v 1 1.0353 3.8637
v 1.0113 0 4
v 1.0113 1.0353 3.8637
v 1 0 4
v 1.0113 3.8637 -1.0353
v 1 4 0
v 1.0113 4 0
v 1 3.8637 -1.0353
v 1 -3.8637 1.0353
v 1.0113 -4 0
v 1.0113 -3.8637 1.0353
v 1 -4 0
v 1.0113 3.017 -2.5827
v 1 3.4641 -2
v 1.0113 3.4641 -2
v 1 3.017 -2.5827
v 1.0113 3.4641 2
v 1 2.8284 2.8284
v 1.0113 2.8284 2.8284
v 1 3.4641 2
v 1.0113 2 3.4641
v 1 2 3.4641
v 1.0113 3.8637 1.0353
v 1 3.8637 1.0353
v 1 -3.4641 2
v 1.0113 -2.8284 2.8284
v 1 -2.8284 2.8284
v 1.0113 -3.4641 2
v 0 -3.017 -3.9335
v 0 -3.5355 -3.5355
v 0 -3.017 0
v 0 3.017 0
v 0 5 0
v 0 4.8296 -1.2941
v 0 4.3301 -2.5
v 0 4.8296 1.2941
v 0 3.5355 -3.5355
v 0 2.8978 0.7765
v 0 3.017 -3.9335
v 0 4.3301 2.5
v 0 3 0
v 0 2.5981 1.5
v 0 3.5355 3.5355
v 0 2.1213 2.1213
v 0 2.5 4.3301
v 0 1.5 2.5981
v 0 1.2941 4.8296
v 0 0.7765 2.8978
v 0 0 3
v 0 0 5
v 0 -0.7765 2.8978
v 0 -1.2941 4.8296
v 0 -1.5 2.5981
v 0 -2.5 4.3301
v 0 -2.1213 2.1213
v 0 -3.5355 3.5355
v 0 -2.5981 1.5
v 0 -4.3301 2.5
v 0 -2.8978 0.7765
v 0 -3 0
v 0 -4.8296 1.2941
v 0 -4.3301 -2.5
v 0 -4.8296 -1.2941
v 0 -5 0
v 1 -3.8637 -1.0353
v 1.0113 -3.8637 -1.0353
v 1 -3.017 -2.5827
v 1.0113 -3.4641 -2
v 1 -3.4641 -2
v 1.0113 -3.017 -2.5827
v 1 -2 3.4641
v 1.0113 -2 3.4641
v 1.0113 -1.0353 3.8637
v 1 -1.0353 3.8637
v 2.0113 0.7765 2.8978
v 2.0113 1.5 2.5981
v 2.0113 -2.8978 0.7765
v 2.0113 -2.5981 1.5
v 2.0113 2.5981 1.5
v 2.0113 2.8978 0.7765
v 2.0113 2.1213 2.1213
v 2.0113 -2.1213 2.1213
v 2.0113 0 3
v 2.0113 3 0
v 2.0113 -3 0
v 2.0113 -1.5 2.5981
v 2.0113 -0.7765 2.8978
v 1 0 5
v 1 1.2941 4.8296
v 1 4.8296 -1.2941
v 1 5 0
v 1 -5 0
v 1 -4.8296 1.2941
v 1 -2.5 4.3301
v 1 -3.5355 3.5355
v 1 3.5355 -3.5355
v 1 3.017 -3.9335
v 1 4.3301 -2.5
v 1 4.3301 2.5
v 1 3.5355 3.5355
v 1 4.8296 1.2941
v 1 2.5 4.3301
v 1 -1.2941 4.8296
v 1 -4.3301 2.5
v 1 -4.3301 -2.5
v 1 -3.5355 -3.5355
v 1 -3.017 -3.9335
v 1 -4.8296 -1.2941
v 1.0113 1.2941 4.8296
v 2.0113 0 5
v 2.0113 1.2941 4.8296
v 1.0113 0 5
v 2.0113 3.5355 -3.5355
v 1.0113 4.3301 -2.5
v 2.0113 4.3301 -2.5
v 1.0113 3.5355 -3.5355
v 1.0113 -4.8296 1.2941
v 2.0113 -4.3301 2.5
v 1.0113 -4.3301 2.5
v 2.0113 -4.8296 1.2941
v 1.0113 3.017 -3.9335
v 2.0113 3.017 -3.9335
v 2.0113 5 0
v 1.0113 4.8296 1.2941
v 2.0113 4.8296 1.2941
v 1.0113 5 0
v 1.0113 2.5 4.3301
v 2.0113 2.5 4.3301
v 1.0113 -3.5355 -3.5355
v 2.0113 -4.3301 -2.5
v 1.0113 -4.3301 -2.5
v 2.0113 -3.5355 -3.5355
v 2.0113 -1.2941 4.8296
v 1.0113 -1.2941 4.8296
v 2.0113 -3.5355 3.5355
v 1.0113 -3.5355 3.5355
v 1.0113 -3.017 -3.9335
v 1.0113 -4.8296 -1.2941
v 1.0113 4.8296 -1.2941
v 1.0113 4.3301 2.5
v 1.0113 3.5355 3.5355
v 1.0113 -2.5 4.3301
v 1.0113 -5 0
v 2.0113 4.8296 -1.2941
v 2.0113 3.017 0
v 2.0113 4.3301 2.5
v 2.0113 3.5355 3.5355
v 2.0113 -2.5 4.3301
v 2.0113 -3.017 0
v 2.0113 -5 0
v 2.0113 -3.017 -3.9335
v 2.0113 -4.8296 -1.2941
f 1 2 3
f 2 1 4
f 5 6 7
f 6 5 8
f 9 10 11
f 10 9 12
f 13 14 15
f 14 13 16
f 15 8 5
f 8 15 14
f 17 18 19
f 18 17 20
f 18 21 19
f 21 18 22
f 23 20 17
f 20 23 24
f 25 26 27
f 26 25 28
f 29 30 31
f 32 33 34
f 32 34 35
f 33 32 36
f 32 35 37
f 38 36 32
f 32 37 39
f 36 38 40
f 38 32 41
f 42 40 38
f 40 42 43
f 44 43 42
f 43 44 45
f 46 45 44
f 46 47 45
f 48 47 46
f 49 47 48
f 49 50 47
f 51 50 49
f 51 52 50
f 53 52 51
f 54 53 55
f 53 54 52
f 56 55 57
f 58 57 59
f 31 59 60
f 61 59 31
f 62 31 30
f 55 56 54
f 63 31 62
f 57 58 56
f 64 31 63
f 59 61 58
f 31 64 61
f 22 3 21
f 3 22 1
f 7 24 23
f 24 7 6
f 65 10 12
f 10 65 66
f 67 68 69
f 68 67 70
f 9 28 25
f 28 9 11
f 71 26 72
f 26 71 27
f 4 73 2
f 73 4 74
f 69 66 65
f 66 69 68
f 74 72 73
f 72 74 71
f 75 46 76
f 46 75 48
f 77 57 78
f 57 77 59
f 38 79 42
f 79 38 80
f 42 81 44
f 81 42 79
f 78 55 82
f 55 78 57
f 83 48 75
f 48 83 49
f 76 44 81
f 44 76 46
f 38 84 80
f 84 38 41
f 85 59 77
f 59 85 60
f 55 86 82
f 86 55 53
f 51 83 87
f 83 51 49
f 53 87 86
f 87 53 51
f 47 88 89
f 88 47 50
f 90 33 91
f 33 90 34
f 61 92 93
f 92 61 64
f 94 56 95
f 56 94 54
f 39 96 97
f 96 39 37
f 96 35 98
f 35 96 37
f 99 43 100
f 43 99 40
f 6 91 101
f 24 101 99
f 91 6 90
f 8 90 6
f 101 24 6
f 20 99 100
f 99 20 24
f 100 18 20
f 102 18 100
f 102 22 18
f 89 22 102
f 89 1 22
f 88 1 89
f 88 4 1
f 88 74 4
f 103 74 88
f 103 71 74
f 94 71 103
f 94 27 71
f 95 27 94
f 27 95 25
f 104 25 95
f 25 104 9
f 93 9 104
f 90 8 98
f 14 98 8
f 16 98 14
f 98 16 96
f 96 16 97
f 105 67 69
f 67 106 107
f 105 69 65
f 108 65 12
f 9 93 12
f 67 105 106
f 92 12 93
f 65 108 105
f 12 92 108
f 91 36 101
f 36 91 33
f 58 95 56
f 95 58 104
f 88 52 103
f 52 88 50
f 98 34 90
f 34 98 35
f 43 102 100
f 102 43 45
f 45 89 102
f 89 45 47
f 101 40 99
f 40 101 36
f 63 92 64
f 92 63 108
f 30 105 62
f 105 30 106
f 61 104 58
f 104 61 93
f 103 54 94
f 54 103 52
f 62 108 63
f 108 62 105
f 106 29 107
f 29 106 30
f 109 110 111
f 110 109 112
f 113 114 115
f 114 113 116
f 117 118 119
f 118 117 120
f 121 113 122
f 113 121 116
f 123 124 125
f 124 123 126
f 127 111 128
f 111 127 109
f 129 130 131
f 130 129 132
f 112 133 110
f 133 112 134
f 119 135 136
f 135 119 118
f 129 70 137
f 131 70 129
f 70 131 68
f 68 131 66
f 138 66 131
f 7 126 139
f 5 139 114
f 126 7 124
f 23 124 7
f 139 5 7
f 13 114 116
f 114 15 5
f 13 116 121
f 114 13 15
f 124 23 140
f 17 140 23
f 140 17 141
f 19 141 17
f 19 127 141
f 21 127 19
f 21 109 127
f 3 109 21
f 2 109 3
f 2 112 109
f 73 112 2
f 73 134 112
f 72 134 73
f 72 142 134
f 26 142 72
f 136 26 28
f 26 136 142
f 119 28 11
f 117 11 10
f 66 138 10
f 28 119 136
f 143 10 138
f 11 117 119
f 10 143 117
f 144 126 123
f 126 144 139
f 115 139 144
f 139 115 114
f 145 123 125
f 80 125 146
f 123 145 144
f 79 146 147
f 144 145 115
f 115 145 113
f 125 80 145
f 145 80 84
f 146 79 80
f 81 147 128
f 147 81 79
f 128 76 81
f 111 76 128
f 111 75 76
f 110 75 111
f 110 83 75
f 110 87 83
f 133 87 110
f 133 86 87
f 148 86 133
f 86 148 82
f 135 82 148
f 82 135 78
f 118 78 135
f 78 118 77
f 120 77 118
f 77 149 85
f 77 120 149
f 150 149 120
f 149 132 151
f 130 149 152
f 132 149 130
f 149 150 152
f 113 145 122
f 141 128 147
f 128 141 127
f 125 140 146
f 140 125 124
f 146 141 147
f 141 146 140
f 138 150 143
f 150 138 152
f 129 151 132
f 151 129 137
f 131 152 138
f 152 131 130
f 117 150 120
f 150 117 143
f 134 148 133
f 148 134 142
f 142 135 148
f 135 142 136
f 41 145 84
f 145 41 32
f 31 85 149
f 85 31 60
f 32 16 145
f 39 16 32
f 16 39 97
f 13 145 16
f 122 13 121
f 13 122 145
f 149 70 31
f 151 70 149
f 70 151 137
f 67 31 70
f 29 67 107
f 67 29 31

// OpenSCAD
// file: ../build_environments.scad
// build_environments.scad: modules to build level sections
//

module pool(diameter=10.0, wall_height=2.0, step_width=3.0, connections=[])
{
    difference() {
        union() {
        difference() {
            cylinder(h=0.5,r1=diameter+step_width,r2=diameter+step_width,$fn=48);
            translate([0,0,-0.1])
                cylinder(h=0.7,r1=diameter,r2=diameter,$fn=48);
        }
        difference() {
            cylinder(h=wall_height,r1=diameter+step_width+1.0,r2=diameter+step_width+1.0,$fn=48);
            translate([0,0,-0.1])
                cylinder(h=wall_height+0.2,r1=diameter+step_width,r2=diameter+step_width,$fn=48);
        }
        }
    
        for (c = connections)
        {
            rotate([0,90,0]) {
                angle = atan2(c[1],c[0]);
                rotate([-angle,0,0]) {
                    cylinder(h=diameter+5.0,r1=c[2],r2=c[2],$fn=48);
                }
            }
        }
    }
}

module straight(length=10.0, width=2.0, dy1=0.0, dy2=0.0, dz=0.0)
{
    dims = [0, 0, 0, 0, 0, (dz/length)];
    matrix = [
        [ 1, dims[0], dims[1], 0 ],
        [ dims[2], 1, dims[4], 0 ],
        [ dims[5], dims[3], 1, 0 ],
        [ 0, 0, 0, 1 ]
    ];
    multmatrix(matrix)
    difference() {
        translate([dy1,0,0])
        union() {
            rotate([0,90,0]) {
                difference() {
                    cylinder(h=(length-dy1-dy2),r1=width+1.0,r2=width+1.0,$fn=24);
                    translate([0,0,-0.1])
                        cylinder(h=(length-dy1-dy2+0.2),r1=width,r2=width,$fn=24);
                }
                difference() {
                    cylinder(h=1.0,r1=width+2.0,r2=width+2.0,$fn=24);
                    translate([0,0,-0.1])
                        cylinder(h=1.2,r1=width,r2=width,$fn=24);
                }
                translate([0,0,(length-dy1-dy2)-1.0]) {
                    difference() {
                        cylinder(h=1.0,r1=width+2.0,r2=width+2.0,$fn=24);
                        translate([0,0,-0.1])
                            cylinder(h=1.2,r1=width,r2=width,$fn=24);
                    }
                }
            }
        }
        translate([0,0,-(2*width+4.0)/2])
            cube([3*length,3*length,2*width+4.0],center=true);
    }
}

module curve(p0=[0,0], center=[0,0], dir=1, angle=0.0, width=2.0)
{
    radius = sqrt((p0[0]-center[0])*(p0[0]-center[0]) + (p0[1]-center[1])*(p0[1]-center[1]));
    if (dir == 0) {
        difference() {
            rotate([0,0,-90])
            difference() {
                rotate_extrude(angle = angle, convexity = 10, $fn=32)
                    translate([radius, 0, 0])
                        circle(r = width+1.0,$fn=24);
                rotate([0,0,-1.0])
                    rotate_extrude(angle = angle+2.0, convexity = 10, $fn=32)
                        translate([radius, 0, 0])
                            circle(r = width,$fn=24);
            }
            translate([0,0,-(2*width+4.0)/2])
                cube([5*radius,5*radius,2*width+4.0],center=true);
        }
    }
    else {
        difference() {
            rotate([0,0,90])
            difference() {
                rotate_extrude(angle = -angle, convexity = 10, $fn=32)
                    translate([radius, 0, 0])
                        circle(r = width+1.0,$fn=24);
                rotate([0,0,1.0])
                    rotate_extrude(angle = -angle-2.0, convexity = 10, $fn=32)
                        translate([radius, 0, 0])
                            circle(r = width,$fn=24);
            }
            translate([0,0,-(2*width+4.0)/2])
                cube([5*radius,5*radius,2*width+4.0],center=true);
        }
    }

}

// test pool
//pool(diameter=12.0000, wall_height=3.0000, step_width=3.0000, connections=[[0.0000,-26.0000,2.0000], [23.6074,0.0000,2.0000]]);

// test straight, slope
//straight(length=26.0000, width=2.0000, dy1=11.8322, dy2=6.7082, dz=0.0000);
//straight(length=29.1549, width=12.0000, dy1=0.0000, dy2=0.0000, dz=-15.0000);

// test curve
//curve(p0=[23.6074, 0.0000], center=[23.6074, 5.0000], dir=0, angle=60.1011, width=2.0000);
//curve(p0=[33.6426, 12.4219], center=[37.9771, 9.9295], dir=1, angle=120.4627, width=2.0000);
// main file
use <../build_environments.scad>;
straight(length=2.0113, width=3.0000, dy1=0.0000, dy2=0.0000, dz=0.0000);
